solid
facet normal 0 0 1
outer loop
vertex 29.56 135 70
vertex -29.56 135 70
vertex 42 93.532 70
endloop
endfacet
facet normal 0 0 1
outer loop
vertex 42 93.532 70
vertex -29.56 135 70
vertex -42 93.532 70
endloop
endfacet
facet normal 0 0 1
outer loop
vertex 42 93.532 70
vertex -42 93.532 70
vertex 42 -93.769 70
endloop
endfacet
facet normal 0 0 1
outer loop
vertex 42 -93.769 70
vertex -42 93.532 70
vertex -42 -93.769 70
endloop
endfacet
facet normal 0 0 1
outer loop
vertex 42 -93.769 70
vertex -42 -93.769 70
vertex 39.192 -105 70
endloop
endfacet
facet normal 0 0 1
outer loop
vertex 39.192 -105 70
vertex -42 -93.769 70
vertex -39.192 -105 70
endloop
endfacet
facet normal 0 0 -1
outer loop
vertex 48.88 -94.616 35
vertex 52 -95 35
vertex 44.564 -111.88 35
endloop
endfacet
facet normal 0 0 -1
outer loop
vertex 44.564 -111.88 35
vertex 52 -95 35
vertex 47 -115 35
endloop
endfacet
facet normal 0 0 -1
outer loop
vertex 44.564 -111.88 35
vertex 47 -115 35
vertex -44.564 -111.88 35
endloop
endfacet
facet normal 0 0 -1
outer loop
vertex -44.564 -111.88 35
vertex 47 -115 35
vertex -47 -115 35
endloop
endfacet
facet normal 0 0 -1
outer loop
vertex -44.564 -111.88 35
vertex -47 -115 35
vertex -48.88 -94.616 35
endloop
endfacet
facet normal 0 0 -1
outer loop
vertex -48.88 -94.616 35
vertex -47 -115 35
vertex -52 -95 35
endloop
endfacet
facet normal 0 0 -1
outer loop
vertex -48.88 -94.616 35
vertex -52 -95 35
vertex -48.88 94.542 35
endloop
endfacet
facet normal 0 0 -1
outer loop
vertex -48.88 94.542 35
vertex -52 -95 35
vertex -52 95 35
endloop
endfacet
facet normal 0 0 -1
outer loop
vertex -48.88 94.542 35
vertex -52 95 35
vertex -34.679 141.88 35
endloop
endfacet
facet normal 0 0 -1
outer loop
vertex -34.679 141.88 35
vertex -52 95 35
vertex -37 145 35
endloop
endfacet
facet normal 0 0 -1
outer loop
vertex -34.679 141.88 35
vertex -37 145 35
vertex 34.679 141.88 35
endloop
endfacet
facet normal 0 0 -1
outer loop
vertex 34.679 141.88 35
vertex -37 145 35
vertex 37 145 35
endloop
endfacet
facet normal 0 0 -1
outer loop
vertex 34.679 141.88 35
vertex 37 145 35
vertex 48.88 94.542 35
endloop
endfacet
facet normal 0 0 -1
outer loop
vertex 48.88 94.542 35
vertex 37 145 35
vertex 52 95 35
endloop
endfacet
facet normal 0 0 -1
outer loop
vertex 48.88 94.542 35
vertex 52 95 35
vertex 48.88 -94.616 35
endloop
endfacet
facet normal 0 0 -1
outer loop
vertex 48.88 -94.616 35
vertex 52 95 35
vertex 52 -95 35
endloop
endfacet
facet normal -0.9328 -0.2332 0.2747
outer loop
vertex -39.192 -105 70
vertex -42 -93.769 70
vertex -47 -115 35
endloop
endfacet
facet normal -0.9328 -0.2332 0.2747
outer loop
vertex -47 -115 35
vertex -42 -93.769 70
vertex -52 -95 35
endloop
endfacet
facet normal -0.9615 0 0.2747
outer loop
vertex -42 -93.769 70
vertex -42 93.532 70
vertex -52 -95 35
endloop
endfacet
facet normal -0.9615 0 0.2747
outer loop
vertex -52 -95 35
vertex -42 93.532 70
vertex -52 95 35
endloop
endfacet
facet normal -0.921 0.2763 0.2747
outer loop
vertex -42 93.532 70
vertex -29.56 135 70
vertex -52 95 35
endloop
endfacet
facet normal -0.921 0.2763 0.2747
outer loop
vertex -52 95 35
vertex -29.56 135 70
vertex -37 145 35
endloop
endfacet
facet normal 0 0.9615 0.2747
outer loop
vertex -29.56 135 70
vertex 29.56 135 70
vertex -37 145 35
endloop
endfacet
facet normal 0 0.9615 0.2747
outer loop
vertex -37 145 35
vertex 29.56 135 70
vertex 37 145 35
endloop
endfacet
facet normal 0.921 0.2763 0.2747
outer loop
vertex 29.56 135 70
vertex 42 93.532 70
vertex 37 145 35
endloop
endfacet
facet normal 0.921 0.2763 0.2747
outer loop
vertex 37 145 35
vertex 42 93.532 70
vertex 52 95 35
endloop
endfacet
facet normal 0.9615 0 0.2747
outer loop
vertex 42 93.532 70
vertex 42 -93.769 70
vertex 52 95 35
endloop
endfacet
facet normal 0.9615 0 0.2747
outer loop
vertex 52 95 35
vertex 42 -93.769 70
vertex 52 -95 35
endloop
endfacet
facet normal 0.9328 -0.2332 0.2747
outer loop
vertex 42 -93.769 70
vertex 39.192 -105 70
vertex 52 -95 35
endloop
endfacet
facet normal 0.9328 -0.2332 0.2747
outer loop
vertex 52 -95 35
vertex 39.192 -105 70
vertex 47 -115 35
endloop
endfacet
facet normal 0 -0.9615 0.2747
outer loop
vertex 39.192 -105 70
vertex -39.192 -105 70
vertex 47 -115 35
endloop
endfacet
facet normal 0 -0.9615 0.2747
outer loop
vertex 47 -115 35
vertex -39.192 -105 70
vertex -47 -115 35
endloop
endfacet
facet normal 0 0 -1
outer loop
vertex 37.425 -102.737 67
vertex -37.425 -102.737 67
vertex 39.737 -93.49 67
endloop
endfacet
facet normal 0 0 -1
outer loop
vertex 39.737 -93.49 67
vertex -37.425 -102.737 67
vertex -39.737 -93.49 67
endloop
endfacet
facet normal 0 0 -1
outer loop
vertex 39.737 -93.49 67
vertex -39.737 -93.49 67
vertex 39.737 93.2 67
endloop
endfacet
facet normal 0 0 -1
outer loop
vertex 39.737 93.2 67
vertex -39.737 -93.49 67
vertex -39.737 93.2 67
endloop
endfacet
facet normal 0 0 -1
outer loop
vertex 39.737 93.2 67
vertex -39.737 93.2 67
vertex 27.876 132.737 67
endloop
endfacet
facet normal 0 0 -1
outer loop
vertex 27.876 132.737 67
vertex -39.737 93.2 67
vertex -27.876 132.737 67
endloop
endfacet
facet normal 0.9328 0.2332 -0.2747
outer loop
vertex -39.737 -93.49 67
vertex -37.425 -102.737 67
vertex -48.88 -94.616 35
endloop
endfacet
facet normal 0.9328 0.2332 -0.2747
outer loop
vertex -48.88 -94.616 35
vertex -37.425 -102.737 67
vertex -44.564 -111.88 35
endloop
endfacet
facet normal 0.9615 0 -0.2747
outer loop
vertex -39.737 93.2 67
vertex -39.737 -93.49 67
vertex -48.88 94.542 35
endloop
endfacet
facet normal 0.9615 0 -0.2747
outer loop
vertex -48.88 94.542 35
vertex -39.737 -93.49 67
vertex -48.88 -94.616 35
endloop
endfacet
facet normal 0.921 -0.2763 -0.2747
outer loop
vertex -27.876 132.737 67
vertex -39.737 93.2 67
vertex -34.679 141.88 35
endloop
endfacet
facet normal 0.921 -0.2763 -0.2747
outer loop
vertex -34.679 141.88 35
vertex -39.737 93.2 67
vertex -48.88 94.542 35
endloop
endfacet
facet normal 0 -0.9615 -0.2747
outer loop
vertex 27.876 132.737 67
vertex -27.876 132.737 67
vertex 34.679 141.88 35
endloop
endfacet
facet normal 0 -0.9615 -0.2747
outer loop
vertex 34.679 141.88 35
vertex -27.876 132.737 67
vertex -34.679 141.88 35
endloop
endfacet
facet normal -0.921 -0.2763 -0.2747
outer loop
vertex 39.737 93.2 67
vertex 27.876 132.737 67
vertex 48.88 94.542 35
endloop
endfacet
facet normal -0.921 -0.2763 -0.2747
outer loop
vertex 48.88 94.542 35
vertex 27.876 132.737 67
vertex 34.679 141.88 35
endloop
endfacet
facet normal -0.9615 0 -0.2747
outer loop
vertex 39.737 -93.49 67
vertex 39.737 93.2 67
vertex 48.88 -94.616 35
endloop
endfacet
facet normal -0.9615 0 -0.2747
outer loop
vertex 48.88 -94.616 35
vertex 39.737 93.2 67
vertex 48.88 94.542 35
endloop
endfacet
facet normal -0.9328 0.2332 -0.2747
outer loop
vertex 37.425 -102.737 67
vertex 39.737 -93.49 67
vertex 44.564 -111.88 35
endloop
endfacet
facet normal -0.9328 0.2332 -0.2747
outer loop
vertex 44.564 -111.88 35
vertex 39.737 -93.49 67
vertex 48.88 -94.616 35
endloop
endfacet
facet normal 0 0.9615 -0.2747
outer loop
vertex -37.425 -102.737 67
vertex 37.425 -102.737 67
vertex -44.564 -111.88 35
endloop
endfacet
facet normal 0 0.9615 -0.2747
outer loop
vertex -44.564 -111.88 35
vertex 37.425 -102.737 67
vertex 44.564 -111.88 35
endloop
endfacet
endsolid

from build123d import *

# Parameters (mm, degrees)
LOFT2_DEPTH = 35
LOFT2_DRAFT = 15.9453959
SHELL1_T    = -3


# Read off the part's stored shape, not the designer's step: Loft2
with BuildPart() as part:
    # Loft2 outline → Loft2 (with draft: the straight prism first)
    with BuildSketch(Plane.XY.offset(70)):
        Polygon((39.192235936, -105), (42, -93.768943744), (42, 93.532311637), (29.559693491, 135), (-29.559693491, 135), (-42, 93.532311637), (-42, -93.768943744), (-39.192235936, -105), align=None)
    extrude(amount=-LOFT2_DEPTH)
    # Loft2: the draft: its side faces are tilted about the plane it starts from
    loft2_sides = [part.faces().sort_by_distance(p)[0] for p in [
        (40.596117968, -99.384471872, 52.5),
        (42, -0.118316053, 52.5),
        (35.779846746, 114.266155819, 52.5),
        (0, 135, 52.5),
        (-35.779846746, 114.266155818, 52.5),
        (-42, -0.118316053, 52.5),
        (-40.596117968, -99.384471872, 52.5),
        (0, -105, 52.5),
    ]]
    draft(loft2_sides, Plane.XY.offset(70), LOFT2_DRAFT)

    # Shell1
    shell1_openings = [part.faces().sort_by_distance(p)[0] for p in [
        (0, 12.225404098, 35),
    ]]
    offset(amount=SHELL1_T, openings=shell1_openings, kind=Kind.INTERSECTION)


solid = part.part
